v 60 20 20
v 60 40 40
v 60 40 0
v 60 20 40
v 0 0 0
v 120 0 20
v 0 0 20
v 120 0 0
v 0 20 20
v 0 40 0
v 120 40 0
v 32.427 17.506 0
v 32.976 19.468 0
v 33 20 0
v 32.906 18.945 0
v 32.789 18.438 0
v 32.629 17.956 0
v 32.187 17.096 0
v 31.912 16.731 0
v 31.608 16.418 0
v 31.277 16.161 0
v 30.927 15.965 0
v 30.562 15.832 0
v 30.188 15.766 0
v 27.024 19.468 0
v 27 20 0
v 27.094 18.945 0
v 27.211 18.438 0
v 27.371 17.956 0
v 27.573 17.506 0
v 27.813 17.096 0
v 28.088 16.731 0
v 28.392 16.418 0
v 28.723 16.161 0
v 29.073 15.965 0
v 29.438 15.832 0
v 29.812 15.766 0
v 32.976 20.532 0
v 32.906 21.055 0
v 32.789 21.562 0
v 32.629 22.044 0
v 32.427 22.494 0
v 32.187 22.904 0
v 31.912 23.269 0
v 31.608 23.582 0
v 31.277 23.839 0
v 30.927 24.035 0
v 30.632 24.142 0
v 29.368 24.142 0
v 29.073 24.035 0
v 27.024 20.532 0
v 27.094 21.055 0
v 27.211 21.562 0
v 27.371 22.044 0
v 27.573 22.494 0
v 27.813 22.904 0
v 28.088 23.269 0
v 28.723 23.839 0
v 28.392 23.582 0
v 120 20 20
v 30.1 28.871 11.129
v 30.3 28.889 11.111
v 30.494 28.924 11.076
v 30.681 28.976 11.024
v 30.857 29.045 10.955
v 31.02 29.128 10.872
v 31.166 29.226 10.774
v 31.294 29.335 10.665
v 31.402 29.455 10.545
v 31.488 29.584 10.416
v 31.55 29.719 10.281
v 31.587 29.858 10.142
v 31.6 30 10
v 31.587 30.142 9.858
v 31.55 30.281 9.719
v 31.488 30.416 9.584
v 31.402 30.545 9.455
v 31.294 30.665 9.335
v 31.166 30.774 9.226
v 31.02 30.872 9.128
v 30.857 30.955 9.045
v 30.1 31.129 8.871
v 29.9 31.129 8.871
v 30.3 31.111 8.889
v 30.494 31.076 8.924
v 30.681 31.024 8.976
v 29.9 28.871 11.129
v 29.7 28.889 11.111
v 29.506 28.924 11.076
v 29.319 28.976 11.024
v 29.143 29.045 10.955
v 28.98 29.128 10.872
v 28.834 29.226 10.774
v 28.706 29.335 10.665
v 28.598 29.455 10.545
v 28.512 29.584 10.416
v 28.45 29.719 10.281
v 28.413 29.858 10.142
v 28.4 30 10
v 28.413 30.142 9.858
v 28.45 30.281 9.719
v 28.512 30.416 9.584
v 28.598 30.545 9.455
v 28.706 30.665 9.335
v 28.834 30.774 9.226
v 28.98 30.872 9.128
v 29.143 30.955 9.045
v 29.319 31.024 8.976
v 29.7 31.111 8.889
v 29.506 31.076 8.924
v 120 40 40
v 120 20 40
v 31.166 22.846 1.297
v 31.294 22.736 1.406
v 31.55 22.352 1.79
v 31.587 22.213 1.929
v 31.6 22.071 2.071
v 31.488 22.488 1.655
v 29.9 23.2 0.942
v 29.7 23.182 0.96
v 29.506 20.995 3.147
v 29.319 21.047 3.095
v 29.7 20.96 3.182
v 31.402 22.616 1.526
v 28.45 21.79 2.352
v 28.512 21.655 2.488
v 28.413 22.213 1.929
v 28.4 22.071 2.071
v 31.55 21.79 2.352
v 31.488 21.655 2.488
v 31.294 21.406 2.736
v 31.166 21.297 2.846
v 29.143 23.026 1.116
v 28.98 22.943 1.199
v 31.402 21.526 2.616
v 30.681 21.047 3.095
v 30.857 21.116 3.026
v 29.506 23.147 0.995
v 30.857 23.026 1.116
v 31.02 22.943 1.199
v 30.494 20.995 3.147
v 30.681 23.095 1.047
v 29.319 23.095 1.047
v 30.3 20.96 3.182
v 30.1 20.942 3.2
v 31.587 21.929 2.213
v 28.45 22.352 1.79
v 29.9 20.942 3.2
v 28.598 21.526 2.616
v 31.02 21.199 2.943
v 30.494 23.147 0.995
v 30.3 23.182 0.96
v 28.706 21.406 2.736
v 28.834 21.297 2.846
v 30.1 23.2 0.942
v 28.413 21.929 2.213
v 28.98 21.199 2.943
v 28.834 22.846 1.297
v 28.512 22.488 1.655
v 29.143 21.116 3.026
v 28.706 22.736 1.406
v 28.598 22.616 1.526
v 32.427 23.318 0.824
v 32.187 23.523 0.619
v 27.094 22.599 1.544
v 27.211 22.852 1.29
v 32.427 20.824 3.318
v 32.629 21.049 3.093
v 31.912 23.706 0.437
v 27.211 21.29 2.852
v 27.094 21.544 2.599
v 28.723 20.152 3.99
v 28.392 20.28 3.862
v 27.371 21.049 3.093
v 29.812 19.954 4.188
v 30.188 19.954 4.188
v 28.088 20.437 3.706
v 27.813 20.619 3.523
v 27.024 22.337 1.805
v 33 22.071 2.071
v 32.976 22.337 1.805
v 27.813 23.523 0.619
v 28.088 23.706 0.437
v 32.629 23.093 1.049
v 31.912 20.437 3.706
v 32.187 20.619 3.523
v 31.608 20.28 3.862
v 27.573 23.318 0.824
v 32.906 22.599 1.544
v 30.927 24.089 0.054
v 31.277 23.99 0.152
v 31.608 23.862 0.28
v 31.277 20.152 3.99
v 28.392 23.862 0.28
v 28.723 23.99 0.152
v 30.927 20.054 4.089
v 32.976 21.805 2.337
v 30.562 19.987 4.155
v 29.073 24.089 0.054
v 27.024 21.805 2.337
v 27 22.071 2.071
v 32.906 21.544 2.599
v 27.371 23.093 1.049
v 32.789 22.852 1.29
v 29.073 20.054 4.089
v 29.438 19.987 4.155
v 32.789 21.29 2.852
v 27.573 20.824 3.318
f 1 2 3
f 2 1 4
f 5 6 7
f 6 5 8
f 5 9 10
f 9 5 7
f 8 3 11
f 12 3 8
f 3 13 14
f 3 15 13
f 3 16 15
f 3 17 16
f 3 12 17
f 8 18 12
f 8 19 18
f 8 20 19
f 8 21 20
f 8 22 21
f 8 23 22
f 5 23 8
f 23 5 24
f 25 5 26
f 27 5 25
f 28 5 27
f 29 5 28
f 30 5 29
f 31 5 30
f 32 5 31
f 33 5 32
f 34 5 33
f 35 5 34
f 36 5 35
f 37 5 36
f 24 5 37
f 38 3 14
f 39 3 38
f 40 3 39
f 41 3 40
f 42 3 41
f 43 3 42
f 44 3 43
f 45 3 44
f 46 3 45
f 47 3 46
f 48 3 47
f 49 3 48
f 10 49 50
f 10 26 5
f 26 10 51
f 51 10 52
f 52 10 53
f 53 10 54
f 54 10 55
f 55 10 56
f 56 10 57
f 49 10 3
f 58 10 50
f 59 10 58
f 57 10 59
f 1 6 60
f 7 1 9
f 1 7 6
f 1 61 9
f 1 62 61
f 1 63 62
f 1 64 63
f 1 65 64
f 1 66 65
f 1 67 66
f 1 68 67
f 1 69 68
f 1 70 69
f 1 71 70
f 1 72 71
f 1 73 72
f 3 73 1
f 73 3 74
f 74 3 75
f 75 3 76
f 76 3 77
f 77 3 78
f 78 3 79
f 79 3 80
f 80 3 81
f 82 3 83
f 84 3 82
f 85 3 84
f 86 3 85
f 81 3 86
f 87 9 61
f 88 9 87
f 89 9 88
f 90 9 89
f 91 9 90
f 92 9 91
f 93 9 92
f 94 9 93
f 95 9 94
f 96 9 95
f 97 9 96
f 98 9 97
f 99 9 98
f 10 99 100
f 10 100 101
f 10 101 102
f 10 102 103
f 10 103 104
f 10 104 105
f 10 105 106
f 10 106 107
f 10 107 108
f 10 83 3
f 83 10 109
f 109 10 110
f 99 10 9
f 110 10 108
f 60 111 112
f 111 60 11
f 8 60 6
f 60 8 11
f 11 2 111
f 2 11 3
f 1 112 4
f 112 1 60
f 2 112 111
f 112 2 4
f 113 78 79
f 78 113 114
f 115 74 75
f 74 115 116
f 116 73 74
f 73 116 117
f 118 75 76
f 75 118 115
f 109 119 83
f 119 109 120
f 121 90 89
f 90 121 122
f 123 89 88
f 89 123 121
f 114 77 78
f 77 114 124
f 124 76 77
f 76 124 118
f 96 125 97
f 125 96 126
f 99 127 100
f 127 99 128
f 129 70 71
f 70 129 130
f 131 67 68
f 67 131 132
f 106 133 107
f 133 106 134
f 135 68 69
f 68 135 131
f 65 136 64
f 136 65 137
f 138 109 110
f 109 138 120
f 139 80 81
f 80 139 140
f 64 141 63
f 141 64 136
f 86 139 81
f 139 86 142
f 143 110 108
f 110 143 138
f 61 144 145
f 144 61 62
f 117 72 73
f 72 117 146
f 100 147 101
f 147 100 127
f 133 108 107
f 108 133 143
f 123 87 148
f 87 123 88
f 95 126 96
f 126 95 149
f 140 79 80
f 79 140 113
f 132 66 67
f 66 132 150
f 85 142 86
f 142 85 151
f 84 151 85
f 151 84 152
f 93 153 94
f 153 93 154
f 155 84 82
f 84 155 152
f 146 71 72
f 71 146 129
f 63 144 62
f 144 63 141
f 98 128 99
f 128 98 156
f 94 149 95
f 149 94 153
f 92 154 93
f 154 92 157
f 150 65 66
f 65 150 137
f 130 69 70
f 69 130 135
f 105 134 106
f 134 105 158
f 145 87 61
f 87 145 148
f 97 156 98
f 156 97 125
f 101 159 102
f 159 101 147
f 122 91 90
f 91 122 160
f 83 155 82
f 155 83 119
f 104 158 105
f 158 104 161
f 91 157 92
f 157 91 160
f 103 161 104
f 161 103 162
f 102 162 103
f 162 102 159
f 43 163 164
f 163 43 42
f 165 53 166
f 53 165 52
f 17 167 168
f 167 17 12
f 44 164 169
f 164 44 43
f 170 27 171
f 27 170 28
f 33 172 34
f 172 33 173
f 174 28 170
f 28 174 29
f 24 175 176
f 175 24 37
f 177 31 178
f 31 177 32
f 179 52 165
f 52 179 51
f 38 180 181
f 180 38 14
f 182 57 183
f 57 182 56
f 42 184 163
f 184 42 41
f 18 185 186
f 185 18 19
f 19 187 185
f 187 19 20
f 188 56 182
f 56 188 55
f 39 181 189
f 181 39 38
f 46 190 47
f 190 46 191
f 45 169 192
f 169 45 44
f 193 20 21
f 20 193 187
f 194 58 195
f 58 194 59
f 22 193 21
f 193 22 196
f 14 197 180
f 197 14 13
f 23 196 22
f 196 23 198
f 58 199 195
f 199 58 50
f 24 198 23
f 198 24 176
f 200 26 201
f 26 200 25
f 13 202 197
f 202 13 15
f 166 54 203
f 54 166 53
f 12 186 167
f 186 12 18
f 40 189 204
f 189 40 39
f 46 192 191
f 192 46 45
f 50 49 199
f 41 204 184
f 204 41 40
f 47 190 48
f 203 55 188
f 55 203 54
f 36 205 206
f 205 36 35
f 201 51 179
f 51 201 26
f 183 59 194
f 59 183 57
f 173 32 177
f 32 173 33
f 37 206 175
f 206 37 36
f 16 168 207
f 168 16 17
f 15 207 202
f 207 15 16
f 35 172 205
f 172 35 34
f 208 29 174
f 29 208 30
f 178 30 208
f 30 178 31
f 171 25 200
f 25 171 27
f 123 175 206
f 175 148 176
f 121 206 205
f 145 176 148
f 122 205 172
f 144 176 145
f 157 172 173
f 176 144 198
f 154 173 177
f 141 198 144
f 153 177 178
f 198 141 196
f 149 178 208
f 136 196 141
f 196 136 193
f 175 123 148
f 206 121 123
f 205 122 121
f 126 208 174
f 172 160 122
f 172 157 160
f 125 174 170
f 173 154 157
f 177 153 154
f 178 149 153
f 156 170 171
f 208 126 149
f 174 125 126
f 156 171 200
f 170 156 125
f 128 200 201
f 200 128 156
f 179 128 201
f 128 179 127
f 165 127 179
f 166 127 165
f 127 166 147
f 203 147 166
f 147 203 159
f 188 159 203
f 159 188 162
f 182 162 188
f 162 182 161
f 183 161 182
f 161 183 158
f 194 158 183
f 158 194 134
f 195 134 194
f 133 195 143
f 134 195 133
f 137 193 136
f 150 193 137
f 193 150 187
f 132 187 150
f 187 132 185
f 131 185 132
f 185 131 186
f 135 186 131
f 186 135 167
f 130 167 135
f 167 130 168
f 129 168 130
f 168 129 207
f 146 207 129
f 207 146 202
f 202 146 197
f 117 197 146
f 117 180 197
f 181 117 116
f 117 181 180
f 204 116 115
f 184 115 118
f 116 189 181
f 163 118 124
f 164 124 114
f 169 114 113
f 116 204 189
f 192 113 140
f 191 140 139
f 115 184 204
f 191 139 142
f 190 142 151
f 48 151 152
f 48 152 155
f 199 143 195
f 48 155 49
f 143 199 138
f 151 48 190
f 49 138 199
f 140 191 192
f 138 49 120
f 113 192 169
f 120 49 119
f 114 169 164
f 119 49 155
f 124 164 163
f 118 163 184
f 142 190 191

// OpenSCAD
$fn=50;
V1=60;
V2=20;
module main() {
    difference() {
        body();
        hole();
    }
}

module hole() {
//    #translate([V1/2,40,0]) rotate([45,0,0]) cylinder(60,d=3.2);
    #translate([V1/2,V2+5,15]) rotate([45,0,0]) union() {
        cylinder(60,d=3.2);
        cylinder(10,d=6);
}
}
module body() {
    cube([V1,V2,V2]);
    hull() {
        translate([0,0,V2]) polyhedron([[0,0,0],[0,V2,0],[0,V2,V2]],[[0,1,2]]);
        translate([V1,0,V2]) polyhedron([[0,0,0],[0,V2,0],[0,V2,V2]],[[0,1,2]]);
    }
    translate([V1,-V2,V2]) cube([V1,V2,V2]);
    translate([V1,0,0]) cube([V1,V2,V2*2]);
}

translate([0,0,V2])rotate([-90,0,0])
main();
